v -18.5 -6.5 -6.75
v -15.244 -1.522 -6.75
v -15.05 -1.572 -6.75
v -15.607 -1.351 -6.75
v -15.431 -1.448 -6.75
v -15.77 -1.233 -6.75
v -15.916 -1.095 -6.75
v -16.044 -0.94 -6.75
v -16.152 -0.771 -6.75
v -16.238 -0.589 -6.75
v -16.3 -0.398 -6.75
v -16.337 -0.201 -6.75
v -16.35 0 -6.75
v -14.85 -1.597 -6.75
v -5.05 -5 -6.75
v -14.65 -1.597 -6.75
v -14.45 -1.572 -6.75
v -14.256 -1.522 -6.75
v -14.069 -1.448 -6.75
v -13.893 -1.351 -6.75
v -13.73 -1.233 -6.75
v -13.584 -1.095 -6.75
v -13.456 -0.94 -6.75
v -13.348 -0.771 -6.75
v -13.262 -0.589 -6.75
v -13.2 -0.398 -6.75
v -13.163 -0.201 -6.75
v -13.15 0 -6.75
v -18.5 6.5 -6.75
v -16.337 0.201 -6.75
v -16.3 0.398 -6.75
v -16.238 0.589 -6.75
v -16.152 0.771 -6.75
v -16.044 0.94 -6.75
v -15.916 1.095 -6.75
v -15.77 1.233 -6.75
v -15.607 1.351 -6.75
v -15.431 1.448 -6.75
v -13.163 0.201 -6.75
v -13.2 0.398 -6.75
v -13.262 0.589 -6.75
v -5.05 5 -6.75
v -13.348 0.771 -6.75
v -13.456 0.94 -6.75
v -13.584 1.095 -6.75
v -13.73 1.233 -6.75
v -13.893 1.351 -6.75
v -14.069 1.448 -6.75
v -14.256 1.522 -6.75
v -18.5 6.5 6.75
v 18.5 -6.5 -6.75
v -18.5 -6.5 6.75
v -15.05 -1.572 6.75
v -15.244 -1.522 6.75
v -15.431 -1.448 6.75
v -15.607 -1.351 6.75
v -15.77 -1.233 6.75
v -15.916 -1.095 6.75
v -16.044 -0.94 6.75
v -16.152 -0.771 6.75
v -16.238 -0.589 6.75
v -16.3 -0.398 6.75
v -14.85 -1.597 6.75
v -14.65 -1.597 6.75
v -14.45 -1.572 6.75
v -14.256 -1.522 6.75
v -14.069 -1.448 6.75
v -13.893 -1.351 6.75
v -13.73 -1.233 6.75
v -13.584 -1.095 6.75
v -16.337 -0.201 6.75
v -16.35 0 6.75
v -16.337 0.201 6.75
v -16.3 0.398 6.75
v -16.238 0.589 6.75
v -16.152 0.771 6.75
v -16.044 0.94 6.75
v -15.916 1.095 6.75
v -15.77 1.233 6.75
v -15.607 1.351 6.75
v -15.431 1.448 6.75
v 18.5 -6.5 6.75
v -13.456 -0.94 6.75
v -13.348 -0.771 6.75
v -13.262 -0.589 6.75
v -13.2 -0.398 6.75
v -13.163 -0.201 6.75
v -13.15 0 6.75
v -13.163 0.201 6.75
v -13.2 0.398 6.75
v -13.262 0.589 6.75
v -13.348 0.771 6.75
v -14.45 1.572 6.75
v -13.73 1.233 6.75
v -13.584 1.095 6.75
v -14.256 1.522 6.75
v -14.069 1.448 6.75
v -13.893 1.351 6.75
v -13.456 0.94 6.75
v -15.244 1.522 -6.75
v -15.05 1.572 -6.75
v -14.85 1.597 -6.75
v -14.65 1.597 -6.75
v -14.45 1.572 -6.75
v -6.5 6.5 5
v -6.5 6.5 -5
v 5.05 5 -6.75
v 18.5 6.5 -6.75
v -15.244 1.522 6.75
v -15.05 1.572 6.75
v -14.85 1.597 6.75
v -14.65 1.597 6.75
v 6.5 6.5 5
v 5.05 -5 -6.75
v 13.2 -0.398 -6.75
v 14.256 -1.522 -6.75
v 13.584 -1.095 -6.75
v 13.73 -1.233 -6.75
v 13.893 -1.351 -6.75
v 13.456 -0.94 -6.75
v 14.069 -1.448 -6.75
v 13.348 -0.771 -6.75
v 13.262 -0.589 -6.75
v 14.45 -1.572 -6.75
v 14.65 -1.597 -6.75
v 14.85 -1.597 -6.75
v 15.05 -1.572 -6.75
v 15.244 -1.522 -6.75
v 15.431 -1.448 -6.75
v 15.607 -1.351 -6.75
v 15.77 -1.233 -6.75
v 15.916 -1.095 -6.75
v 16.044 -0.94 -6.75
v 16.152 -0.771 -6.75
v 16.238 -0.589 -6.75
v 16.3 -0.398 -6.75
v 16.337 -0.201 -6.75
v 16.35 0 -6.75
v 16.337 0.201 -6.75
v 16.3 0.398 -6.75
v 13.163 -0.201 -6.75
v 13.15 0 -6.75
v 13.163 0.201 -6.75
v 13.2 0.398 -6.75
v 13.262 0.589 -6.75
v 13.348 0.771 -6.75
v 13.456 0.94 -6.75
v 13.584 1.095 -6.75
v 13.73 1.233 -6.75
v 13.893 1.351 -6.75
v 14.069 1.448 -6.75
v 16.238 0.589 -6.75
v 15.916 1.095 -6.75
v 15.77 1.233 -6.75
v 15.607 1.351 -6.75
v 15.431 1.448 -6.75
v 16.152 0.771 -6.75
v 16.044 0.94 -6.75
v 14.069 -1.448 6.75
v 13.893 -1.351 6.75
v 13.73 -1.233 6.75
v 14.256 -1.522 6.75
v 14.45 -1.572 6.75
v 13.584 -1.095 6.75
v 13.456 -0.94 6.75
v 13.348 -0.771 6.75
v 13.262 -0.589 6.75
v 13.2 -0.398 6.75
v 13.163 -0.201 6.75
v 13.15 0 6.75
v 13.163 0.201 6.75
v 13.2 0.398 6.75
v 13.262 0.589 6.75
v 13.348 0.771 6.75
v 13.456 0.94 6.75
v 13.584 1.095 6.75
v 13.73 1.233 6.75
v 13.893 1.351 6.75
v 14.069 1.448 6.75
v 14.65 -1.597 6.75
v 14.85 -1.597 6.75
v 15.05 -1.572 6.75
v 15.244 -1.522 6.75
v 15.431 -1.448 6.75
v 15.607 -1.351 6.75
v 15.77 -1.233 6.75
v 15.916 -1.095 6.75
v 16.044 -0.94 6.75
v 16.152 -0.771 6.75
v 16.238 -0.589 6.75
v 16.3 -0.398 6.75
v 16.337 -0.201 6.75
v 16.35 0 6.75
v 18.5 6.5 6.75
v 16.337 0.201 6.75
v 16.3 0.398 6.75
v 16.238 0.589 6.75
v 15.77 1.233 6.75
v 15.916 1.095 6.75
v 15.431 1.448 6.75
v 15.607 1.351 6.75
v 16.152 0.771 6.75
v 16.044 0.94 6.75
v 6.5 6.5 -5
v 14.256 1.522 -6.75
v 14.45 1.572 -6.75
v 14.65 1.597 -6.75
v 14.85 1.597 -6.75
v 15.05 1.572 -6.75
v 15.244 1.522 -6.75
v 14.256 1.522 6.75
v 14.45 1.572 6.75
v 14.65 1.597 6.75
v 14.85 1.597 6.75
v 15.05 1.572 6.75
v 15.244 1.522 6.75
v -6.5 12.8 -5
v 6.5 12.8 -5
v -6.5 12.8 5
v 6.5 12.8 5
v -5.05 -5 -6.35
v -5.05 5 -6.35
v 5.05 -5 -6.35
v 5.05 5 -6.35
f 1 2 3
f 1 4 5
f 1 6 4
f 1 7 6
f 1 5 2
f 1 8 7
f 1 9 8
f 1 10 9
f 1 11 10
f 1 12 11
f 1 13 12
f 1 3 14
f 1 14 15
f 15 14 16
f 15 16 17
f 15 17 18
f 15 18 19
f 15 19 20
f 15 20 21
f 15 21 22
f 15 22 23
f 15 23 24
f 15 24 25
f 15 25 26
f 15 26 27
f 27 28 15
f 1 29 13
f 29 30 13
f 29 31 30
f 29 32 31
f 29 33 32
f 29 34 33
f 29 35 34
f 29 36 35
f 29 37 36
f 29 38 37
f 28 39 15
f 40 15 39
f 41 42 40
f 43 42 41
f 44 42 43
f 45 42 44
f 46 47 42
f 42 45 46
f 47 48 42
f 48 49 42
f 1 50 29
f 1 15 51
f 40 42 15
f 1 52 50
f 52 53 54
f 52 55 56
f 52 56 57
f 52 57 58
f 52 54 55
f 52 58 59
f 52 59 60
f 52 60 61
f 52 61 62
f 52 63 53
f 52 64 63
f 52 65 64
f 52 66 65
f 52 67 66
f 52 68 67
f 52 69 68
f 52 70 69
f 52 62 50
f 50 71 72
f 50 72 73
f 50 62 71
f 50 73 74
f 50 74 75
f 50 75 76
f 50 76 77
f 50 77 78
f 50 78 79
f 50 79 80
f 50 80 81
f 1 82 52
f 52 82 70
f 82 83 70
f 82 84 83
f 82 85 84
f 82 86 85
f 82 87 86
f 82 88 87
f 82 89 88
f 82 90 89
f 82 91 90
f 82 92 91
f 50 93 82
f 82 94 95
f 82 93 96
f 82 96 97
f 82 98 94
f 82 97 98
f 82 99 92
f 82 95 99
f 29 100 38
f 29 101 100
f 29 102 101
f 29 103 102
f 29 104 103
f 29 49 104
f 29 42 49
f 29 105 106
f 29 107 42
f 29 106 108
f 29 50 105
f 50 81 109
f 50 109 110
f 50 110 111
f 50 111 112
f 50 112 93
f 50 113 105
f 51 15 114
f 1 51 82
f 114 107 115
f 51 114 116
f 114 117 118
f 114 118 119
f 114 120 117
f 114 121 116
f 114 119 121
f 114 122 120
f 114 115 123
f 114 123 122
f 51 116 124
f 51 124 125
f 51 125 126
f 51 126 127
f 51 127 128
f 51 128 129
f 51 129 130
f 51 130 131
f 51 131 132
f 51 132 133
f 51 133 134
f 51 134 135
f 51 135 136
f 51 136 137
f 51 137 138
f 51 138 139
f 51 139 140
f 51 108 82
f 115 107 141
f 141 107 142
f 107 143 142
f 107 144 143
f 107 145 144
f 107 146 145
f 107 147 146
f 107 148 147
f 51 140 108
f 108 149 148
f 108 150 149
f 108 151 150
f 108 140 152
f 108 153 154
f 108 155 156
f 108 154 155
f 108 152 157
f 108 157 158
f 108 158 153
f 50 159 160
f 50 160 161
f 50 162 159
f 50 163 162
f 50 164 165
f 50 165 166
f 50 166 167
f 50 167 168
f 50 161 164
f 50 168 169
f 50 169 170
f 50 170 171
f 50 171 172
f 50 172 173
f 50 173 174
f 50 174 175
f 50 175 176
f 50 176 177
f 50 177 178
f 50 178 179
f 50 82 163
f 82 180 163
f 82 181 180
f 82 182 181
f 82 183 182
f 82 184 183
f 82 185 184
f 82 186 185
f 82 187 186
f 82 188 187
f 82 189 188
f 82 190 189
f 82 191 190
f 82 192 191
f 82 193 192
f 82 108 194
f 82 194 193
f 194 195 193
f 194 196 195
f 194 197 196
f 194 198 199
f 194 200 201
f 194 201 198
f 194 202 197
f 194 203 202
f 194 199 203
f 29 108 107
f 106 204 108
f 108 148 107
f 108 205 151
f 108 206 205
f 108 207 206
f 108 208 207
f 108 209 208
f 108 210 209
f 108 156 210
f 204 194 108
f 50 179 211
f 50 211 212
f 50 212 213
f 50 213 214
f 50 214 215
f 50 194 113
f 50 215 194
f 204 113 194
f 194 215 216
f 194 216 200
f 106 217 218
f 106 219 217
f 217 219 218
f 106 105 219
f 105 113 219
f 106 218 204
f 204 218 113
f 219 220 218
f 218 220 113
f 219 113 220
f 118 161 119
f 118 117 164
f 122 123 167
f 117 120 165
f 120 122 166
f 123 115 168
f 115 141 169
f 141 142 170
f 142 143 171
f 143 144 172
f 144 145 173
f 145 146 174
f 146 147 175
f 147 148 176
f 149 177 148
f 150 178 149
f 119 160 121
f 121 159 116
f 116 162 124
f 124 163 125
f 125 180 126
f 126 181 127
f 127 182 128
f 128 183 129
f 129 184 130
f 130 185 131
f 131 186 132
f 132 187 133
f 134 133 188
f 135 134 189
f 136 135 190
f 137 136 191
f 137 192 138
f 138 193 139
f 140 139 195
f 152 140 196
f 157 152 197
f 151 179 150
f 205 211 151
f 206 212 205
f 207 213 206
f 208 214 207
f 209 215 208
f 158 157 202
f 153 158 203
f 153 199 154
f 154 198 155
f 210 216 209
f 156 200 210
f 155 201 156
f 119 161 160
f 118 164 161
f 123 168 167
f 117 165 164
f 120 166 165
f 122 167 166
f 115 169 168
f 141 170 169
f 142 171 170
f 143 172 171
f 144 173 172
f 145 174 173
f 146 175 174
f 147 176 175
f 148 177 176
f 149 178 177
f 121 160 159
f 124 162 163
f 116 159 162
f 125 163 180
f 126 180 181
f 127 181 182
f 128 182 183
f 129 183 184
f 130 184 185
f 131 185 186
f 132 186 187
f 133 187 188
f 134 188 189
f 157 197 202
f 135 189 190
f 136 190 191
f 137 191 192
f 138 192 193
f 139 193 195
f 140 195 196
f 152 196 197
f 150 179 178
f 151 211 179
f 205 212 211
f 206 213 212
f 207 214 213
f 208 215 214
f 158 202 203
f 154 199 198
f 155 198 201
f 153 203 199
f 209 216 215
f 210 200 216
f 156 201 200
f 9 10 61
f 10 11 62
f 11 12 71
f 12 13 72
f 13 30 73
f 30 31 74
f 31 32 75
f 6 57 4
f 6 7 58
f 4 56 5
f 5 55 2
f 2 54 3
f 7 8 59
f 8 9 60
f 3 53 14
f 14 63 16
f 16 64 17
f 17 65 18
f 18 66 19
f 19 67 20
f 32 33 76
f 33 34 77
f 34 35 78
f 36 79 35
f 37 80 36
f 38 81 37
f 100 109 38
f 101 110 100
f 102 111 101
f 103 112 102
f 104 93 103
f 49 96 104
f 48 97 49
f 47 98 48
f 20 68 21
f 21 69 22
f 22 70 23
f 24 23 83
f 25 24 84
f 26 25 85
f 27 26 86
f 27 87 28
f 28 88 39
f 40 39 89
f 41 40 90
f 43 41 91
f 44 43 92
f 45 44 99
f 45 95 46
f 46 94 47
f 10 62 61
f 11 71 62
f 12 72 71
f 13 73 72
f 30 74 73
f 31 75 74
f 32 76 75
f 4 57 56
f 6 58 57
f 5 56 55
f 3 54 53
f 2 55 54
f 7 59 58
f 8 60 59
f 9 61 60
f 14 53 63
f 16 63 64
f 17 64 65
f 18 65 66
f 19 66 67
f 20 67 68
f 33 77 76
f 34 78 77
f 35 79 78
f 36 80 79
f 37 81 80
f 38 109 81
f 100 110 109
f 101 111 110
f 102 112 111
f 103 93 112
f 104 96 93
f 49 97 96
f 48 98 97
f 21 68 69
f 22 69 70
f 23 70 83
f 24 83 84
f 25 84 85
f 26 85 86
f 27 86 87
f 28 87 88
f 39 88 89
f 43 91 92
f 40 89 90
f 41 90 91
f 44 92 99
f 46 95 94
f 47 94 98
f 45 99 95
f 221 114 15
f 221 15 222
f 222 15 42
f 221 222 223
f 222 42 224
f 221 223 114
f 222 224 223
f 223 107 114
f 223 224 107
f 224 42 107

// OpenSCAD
// Sharp GP2Y0A21YK0F Distance Sensor Modeling
// Units: mm

$fn = 50; // 解像度

// --- Dimensions from Datasheet ---
width_total = 37.0;
hole_spacing = 29.5;
hole_diameter = 3.2;

height_total = 13.5;
height_main_body = 13.0; // Side view indicates main block height
body_depth = 13.0;       // Estimated from side view proportions

lens_case_depth = 6.3;
lens_case_width = 13.0;  // Estimated from side view
lens_case_height = 10.0; // Estimated from side view

connector_width = 14.75;
connector_depth = 3.3;   // From (3.3) reference in datasheet
connector_thickness = 1.2; // Estimated base thickness

// --- Modeling ---

module sensor_gp2y0a21() {
    difference() {
        union() {
            // 1. Main Body (The rectangular housing)
            // Placed so the mounting surface is towards -Z
            // Center of the 37x13x13.5 bounding box is the origin
            translate([0, 0, 0])
                cube([width_total, body_depth, height_total], center=true);

            // 2. Lens Case (Protruding in +Y direction)
            translate([0, body_depth/2 + lens_case_depth/2, 0])
                cube([lens_case_width, lens_case_depth, lens_case_height], center=true);

            // 3. Connector/PWB Base (At the -Z side)
            // Positioned at the bottom face of the sensor
            translate([0, -connector_depth/2, -height_total/2 + connector_thickness/2])
                cube([connector_width, connector_depth, connector_thickness], center=true);
        }

        // 4. Mounting Holes (Subtraction)
        // Holes are located on the X-axis at +/- hole_spacing/2
        translate([hole_spacing/2, 0, 0])
            cylinder(d=hole_diameter, h=height_total + 2, center=true);
        translate([-hole_spacing/2, 0, 0])
            cylinder(d=hole_diameter, h=height_total + 2, center=true);
            
        // 5. Connector pin area cutout (Optional refinement)
        // Creates a small notch for the connector pins on the bottom
        translate([0, 0, -height_total/2 - 0.1])
            cube([10.1, 10, 1], center=true);
    }
}

// Execute modeling
sensor_gp2y0a21();

// --- Reference Axis Helper (Optional, for visualization) ---
// Uncomment below to see axes
/*
%translate([0,0,0]) cube([1,1,1], center=true); // Origin
*/
